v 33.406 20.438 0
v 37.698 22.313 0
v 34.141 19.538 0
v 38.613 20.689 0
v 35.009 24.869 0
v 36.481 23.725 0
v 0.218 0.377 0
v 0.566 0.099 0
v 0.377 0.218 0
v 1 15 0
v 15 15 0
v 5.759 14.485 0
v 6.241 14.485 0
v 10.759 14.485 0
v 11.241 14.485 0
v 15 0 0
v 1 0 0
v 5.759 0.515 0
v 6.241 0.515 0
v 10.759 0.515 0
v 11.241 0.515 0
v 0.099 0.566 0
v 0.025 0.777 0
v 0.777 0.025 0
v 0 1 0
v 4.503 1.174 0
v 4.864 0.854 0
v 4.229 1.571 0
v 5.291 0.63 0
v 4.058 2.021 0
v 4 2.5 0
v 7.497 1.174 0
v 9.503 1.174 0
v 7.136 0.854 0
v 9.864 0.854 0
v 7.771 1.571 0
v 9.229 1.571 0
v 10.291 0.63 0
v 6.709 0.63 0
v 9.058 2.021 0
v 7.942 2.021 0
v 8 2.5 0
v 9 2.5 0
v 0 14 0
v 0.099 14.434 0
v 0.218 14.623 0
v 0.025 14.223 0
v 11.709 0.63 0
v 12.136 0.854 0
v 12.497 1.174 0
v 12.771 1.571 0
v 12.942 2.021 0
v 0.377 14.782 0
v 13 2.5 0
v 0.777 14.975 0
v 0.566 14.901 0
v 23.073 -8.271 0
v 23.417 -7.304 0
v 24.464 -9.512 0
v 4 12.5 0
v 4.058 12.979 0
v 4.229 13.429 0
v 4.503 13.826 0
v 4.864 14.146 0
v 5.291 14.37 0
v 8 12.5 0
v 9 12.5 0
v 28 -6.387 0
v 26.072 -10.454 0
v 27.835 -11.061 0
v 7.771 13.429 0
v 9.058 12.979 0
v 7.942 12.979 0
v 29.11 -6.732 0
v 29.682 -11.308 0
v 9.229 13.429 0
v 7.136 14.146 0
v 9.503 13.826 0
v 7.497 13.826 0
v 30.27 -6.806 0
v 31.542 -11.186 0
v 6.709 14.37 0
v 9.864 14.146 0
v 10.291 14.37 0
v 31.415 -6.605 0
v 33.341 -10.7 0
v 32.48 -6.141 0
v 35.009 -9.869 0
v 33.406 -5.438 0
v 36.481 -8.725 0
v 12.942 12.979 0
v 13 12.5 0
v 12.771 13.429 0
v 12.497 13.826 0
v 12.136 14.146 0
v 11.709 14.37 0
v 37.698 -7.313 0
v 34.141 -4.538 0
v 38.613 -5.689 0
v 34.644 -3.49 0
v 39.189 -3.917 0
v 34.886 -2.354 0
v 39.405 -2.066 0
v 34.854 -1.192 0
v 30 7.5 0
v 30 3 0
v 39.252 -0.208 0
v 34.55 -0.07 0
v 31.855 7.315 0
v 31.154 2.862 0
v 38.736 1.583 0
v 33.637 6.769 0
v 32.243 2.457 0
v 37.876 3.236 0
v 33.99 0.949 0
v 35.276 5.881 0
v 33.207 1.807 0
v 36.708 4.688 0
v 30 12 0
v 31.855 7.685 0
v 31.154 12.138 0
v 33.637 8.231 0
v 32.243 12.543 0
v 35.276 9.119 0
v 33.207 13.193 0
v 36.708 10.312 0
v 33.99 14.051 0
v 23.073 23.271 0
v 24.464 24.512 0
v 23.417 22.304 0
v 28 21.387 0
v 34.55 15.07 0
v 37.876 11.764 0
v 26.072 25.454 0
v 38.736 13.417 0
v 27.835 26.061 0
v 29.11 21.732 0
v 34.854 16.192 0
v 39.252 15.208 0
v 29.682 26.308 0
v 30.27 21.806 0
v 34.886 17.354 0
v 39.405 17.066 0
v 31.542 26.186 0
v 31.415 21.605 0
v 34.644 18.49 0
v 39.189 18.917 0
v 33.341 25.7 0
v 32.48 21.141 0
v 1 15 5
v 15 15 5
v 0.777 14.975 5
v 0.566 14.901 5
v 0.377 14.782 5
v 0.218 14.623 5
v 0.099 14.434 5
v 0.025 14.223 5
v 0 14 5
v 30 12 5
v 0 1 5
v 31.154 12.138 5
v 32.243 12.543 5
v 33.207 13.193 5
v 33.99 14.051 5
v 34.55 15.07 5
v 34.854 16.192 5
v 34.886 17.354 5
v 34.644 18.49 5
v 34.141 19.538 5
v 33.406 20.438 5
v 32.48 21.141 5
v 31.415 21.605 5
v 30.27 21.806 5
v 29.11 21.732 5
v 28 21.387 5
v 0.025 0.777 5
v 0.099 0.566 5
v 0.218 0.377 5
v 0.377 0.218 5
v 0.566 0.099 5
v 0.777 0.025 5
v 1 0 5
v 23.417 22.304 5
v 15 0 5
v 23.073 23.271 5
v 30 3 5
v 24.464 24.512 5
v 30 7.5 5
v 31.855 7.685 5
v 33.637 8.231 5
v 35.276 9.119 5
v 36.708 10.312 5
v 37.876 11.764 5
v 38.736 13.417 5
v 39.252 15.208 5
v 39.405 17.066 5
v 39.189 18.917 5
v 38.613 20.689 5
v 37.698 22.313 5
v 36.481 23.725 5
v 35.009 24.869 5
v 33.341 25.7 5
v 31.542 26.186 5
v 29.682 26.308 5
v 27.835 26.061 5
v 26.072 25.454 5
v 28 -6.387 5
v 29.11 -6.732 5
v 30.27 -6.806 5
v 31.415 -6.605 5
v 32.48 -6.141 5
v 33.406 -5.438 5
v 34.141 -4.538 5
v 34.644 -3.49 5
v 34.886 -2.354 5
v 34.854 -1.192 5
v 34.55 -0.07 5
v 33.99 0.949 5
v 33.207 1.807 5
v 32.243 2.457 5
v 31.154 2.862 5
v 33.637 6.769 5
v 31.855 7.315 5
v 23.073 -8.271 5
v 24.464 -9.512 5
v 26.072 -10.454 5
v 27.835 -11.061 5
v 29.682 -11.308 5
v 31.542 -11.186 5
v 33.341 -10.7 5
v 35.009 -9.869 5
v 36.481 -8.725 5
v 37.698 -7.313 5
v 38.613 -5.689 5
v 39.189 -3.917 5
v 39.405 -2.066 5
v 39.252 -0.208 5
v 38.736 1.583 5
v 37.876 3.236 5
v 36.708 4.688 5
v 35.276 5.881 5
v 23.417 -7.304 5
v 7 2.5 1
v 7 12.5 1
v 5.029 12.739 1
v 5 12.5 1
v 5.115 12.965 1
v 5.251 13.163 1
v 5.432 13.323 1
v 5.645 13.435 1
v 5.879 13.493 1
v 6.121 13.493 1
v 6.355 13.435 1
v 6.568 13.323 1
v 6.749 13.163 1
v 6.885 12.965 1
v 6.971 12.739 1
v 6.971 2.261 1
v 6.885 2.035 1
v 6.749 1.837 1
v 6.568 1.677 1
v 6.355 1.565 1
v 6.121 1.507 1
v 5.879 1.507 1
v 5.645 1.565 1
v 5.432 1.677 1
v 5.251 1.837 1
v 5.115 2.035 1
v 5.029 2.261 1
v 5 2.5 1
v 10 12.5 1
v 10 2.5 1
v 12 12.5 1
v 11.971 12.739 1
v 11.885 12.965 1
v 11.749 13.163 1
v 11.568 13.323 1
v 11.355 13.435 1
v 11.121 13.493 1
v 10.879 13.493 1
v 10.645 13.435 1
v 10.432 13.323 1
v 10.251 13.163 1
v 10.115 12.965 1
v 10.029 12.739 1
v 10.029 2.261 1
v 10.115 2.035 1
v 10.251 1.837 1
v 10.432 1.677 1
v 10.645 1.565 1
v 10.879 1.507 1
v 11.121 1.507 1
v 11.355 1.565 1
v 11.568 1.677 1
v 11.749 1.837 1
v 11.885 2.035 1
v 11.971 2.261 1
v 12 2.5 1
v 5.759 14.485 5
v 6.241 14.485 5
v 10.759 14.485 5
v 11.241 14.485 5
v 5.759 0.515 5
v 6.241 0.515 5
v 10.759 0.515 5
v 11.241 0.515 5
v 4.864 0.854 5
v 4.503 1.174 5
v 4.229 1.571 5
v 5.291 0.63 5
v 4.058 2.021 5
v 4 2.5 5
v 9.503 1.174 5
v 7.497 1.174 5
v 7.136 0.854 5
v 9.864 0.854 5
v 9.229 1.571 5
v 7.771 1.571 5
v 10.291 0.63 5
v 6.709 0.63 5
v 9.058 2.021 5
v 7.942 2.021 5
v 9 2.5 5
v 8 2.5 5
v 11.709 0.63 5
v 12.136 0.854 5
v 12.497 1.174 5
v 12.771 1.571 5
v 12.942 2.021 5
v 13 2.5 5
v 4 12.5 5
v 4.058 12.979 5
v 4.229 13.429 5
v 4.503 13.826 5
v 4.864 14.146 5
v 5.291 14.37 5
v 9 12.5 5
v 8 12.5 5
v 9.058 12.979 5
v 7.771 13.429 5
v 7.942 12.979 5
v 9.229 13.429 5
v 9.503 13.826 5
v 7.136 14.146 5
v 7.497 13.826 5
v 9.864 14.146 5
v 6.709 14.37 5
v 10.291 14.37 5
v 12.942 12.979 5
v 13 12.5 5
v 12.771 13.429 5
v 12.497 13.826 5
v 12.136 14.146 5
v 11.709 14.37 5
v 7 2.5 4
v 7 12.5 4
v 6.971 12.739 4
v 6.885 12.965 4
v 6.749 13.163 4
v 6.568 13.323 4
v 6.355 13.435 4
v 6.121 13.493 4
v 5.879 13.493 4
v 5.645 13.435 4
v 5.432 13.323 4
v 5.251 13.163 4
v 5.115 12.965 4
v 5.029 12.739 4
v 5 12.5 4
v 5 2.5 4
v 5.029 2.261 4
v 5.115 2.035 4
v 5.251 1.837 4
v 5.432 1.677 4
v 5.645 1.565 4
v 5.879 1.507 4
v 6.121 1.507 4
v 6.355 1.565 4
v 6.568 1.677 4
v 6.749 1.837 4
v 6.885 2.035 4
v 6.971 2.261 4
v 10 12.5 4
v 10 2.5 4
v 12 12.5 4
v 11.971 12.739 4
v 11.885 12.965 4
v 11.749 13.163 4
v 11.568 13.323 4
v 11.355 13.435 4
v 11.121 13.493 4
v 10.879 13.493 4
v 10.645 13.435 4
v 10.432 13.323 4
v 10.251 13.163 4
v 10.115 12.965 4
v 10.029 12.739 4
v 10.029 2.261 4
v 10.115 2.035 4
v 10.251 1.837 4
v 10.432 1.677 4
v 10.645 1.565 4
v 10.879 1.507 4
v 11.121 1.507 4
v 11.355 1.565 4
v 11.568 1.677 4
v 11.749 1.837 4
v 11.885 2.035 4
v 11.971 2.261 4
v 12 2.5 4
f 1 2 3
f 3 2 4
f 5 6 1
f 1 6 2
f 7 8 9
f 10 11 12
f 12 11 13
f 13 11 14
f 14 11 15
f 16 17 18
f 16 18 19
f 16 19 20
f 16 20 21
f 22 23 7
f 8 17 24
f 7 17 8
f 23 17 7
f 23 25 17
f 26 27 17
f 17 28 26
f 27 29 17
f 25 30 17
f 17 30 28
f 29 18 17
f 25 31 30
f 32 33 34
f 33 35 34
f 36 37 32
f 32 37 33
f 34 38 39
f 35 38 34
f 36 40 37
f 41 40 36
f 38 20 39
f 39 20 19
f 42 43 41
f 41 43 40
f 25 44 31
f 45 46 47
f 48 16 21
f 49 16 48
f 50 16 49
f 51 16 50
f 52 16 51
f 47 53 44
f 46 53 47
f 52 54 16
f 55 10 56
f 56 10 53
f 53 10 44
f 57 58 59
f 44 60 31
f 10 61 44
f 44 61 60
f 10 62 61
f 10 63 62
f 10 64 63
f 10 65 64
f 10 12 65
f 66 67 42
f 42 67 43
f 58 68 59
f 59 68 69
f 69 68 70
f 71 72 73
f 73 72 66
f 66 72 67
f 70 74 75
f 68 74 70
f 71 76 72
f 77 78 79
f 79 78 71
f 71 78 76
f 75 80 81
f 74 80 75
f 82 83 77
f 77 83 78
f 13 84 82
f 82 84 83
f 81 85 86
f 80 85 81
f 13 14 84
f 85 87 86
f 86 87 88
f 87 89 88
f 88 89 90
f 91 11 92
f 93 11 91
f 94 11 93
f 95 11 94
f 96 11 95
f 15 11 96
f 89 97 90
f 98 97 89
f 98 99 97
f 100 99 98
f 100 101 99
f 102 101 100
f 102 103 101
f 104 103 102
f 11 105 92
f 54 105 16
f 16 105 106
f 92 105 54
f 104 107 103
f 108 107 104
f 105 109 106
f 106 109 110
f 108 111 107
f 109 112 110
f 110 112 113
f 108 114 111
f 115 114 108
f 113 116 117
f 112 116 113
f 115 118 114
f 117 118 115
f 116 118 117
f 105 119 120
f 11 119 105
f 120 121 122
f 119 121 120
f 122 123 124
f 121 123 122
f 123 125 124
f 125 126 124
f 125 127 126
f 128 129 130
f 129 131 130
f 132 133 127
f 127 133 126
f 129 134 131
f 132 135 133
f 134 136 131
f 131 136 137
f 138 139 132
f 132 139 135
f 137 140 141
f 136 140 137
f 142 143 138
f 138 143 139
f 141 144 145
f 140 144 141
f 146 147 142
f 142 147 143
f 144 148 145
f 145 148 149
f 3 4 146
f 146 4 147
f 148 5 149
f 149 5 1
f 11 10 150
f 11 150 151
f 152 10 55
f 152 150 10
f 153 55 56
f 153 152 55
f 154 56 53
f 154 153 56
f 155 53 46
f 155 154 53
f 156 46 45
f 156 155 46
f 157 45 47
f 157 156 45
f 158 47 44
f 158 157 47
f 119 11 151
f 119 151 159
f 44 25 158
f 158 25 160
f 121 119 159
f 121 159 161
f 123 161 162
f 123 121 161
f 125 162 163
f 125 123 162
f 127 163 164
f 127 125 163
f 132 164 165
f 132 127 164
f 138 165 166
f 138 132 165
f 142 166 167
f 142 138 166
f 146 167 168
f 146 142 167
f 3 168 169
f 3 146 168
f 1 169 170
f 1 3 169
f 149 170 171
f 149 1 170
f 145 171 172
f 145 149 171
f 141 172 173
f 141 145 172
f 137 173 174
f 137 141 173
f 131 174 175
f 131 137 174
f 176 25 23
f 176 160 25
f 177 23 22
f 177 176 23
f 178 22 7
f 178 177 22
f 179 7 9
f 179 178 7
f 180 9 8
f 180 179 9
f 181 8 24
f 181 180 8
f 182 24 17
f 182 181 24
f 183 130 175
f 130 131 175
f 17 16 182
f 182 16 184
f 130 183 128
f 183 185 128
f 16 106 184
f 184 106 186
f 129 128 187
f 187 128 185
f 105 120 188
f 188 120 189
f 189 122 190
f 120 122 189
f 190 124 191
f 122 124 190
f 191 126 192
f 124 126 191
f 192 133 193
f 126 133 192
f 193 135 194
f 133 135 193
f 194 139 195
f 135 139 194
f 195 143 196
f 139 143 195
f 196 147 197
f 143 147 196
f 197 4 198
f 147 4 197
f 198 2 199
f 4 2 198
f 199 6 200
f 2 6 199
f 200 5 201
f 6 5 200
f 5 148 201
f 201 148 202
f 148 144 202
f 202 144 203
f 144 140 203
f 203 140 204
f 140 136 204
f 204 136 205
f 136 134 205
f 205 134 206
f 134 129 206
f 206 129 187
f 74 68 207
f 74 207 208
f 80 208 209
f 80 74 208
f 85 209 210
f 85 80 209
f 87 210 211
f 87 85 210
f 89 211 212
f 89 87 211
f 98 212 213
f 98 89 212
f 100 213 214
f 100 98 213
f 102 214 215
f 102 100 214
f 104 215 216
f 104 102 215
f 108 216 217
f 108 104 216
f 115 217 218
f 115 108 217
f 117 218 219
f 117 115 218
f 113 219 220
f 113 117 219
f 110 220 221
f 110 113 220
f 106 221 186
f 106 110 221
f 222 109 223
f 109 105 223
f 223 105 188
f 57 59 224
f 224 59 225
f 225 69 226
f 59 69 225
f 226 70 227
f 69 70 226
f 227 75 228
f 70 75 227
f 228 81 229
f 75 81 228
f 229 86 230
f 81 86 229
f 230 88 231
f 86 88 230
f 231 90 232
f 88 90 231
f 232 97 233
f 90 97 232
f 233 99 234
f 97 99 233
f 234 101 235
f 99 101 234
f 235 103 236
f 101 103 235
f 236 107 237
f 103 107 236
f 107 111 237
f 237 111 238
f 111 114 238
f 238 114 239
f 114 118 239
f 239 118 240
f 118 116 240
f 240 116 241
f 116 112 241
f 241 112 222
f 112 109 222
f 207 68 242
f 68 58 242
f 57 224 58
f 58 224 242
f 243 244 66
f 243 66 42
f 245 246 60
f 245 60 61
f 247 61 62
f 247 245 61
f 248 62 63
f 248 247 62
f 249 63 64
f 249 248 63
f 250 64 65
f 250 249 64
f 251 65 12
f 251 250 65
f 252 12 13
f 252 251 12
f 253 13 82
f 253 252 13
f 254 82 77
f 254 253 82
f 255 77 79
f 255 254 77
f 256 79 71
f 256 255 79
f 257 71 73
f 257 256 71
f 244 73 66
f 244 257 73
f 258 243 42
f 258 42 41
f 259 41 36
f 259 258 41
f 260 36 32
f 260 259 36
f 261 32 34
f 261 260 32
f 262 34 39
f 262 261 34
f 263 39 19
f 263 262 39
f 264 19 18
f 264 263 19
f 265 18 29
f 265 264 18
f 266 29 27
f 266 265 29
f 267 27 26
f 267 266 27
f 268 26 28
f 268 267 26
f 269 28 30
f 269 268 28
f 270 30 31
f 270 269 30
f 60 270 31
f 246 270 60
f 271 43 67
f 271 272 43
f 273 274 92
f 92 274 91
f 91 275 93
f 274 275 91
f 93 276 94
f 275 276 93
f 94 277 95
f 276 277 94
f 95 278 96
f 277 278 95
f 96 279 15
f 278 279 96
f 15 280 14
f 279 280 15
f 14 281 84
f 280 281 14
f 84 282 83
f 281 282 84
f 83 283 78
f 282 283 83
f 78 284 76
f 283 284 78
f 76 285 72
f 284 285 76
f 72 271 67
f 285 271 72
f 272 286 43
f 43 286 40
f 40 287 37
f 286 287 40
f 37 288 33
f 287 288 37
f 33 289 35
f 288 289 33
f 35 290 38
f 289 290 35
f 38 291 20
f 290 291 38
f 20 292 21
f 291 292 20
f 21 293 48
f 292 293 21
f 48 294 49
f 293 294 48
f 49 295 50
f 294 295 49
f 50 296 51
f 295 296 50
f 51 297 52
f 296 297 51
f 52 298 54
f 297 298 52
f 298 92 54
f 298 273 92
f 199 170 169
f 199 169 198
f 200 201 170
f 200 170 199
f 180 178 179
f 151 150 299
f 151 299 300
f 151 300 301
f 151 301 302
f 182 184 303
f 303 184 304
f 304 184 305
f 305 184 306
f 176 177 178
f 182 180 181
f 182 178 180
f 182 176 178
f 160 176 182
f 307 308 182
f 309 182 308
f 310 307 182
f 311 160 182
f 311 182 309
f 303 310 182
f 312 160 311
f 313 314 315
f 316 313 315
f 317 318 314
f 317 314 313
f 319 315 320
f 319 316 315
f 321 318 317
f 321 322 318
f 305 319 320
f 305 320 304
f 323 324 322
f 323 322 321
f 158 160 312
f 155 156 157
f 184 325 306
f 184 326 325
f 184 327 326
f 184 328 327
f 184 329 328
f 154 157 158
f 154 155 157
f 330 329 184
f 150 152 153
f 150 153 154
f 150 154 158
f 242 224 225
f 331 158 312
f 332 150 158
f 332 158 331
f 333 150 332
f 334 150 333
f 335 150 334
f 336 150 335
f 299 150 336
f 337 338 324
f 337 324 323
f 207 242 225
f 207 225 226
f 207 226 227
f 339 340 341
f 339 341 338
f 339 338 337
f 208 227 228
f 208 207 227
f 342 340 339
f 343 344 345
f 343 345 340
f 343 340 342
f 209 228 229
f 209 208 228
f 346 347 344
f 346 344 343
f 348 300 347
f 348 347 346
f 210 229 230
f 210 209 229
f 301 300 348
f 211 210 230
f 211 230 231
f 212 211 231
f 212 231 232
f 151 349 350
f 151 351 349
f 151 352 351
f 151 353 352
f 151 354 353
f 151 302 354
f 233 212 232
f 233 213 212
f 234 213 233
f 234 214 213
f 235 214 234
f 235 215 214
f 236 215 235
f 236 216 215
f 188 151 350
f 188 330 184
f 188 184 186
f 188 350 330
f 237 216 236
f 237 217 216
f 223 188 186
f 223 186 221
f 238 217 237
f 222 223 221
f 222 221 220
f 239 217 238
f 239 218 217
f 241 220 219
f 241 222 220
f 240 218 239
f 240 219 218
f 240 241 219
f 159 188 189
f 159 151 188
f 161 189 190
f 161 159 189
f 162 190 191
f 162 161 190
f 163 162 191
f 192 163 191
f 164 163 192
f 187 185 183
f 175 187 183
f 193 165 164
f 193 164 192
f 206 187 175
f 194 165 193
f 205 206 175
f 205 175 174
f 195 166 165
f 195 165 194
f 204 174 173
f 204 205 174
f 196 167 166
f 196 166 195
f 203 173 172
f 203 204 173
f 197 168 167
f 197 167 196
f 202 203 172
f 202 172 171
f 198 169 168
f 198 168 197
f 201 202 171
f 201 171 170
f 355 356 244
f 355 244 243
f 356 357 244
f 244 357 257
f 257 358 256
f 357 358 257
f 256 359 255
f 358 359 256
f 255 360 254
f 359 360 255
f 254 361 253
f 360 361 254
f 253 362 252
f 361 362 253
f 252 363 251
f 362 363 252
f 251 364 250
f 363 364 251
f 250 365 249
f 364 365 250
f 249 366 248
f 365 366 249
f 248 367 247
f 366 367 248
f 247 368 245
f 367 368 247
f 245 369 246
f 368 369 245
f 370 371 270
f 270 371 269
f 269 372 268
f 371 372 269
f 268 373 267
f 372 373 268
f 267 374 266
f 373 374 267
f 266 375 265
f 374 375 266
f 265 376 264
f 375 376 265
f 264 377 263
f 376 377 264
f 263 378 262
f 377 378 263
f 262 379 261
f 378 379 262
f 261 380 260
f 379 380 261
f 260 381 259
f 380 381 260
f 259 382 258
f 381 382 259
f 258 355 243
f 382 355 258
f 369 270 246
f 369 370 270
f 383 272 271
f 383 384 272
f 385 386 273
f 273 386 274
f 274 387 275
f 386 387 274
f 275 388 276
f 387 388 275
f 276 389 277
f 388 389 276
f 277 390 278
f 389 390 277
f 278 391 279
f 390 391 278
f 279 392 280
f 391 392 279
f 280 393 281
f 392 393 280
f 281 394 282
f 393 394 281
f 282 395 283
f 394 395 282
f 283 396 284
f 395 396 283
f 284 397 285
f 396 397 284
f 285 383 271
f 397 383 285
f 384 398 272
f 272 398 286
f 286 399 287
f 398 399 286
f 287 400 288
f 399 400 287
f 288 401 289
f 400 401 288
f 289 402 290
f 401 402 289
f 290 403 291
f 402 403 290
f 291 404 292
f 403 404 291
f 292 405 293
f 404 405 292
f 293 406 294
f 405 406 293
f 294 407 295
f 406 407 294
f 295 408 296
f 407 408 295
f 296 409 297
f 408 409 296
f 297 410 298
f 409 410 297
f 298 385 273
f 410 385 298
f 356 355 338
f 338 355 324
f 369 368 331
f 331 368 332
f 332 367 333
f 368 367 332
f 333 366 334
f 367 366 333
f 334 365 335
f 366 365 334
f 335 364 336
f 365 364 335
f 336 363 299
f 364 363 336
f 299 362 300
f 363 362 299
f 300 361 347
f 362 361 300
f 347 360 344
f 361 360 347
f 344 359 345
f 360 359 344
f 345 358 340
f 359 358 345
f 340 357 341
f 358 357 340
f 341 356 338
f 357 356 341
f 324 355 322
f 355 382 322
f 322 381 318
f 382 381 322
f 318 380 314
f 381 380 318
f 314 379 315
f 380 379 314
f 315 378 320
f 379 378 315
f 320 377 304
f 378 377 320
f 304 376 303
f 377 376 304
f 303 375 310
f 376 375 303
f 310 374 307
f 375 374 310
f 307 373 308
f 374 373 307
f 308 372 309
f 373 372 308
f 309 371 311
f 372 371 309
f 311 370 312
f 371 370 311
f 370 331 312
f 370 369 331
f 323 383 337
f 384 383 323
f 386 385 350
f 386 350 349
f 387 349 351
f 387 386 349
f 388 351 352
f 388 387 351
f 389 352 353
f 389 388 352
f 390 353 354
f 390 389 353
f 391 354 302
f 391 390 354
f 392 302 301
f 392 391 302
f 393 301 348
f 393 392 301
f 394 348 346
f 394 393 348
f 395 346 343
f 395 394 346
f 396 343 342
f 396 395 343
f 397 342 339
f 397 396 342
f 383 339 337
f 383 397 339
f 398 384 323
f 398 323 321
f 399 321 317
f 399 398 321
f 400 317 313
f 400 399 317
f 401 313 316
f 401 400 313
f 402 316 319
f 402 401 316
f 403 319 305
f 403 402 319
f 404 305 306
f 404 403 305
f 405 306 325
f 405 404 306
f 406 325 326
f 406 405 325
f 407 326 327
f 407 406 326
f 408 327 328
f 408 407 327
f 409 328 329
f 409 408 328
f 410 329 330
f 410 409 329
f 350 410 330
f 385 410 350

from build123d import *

# Parameters (mm, degrees)
PAD_DEPTH    = 5
POCKET_DEPTH = 5
CHAMFER_SIZE = 1
FILLET_R     = 1


with BuildPart() as part:
    # Sketch → Pad (new body)
    with BuildSketch(Plane.XY):
        with BuildLine():
            Line((0, 15), (0, 0))
            Line((0, 0), (15, 0))
            Line((15, 0), (30, 3))
            ThreePointArc((28, -6.38736), (34.799024, -2.929176), (30, 3))
            Line((28, -6.38736), (22.436801, -7.5))
            ThreePointArc((22.436801, -7.5), (38.399434, -6.141839), (30, 7.5))
            ThreePointArc((30, 7.5), (38.399434, 21.141839), (22.436801, 22.5))
            Line((22.436801, 22.5), (28, 21.38736))
            ThreePointArc((30, 12), (34.799024, 17.929176), (28, 21.38736))
            Line((15, 15), (30, 12))
            Line((0, 15), (15, 15))
        make_face()
    extrude(amount=PAD_DEPTH)

    # Sketch001 (on Face13 of Pad) → Pocket (cut)
    with BuildSketch(Plane.XY.offset(5)):
        with BuildLine():
            ThreePointArc((7, 12.5), (6, 13.5), (5, 12.5))
            Line((5, 12.5), (5, 2.5))
            ThreePointArc((5, 2.5), (6, 1.5), (7, 2.5))
            Line((7, 12.5), (7, 2.5))
        make_face()
        with BuildLine():
            ThreePointArc((12, 12.5), (11, 13.5), (10, 12.5))
            Line((10, 12.5), (10, 2.5))
            ThreePointArc((10, 2.5), (11, 1.5), (12, 2.5))
            Line((12, 12.5), (12, 2.5))
        make_face()
    extrude(amount=-POCKET_DEPTH, mode=Mode.SUBTRACT)

    # Chamfer
    chamfer_edges = [part.edges().sort_by_distance(p)[0] for p in [
        (7, 7.5, 5),
        (10, 7.5, 5),
        (7, 7.5, 0),
        (10, 7.5, 0),
        (22.436801, 22.5, 2.5),
        (22.436801, -7.5, 2.5),
    ]]
    chamfer(chamfer_edges, length=CHAMFER_SIZE)

    # Fillet
    fillet_edges = [part.edges().sort_by_distance(p)[0] for p in [
        (0, 15, 2.5),
        (0, 0, 2.5),
    ]]
    fillet(fillet_edges, radius=FILLET_R)


solid = part.part
